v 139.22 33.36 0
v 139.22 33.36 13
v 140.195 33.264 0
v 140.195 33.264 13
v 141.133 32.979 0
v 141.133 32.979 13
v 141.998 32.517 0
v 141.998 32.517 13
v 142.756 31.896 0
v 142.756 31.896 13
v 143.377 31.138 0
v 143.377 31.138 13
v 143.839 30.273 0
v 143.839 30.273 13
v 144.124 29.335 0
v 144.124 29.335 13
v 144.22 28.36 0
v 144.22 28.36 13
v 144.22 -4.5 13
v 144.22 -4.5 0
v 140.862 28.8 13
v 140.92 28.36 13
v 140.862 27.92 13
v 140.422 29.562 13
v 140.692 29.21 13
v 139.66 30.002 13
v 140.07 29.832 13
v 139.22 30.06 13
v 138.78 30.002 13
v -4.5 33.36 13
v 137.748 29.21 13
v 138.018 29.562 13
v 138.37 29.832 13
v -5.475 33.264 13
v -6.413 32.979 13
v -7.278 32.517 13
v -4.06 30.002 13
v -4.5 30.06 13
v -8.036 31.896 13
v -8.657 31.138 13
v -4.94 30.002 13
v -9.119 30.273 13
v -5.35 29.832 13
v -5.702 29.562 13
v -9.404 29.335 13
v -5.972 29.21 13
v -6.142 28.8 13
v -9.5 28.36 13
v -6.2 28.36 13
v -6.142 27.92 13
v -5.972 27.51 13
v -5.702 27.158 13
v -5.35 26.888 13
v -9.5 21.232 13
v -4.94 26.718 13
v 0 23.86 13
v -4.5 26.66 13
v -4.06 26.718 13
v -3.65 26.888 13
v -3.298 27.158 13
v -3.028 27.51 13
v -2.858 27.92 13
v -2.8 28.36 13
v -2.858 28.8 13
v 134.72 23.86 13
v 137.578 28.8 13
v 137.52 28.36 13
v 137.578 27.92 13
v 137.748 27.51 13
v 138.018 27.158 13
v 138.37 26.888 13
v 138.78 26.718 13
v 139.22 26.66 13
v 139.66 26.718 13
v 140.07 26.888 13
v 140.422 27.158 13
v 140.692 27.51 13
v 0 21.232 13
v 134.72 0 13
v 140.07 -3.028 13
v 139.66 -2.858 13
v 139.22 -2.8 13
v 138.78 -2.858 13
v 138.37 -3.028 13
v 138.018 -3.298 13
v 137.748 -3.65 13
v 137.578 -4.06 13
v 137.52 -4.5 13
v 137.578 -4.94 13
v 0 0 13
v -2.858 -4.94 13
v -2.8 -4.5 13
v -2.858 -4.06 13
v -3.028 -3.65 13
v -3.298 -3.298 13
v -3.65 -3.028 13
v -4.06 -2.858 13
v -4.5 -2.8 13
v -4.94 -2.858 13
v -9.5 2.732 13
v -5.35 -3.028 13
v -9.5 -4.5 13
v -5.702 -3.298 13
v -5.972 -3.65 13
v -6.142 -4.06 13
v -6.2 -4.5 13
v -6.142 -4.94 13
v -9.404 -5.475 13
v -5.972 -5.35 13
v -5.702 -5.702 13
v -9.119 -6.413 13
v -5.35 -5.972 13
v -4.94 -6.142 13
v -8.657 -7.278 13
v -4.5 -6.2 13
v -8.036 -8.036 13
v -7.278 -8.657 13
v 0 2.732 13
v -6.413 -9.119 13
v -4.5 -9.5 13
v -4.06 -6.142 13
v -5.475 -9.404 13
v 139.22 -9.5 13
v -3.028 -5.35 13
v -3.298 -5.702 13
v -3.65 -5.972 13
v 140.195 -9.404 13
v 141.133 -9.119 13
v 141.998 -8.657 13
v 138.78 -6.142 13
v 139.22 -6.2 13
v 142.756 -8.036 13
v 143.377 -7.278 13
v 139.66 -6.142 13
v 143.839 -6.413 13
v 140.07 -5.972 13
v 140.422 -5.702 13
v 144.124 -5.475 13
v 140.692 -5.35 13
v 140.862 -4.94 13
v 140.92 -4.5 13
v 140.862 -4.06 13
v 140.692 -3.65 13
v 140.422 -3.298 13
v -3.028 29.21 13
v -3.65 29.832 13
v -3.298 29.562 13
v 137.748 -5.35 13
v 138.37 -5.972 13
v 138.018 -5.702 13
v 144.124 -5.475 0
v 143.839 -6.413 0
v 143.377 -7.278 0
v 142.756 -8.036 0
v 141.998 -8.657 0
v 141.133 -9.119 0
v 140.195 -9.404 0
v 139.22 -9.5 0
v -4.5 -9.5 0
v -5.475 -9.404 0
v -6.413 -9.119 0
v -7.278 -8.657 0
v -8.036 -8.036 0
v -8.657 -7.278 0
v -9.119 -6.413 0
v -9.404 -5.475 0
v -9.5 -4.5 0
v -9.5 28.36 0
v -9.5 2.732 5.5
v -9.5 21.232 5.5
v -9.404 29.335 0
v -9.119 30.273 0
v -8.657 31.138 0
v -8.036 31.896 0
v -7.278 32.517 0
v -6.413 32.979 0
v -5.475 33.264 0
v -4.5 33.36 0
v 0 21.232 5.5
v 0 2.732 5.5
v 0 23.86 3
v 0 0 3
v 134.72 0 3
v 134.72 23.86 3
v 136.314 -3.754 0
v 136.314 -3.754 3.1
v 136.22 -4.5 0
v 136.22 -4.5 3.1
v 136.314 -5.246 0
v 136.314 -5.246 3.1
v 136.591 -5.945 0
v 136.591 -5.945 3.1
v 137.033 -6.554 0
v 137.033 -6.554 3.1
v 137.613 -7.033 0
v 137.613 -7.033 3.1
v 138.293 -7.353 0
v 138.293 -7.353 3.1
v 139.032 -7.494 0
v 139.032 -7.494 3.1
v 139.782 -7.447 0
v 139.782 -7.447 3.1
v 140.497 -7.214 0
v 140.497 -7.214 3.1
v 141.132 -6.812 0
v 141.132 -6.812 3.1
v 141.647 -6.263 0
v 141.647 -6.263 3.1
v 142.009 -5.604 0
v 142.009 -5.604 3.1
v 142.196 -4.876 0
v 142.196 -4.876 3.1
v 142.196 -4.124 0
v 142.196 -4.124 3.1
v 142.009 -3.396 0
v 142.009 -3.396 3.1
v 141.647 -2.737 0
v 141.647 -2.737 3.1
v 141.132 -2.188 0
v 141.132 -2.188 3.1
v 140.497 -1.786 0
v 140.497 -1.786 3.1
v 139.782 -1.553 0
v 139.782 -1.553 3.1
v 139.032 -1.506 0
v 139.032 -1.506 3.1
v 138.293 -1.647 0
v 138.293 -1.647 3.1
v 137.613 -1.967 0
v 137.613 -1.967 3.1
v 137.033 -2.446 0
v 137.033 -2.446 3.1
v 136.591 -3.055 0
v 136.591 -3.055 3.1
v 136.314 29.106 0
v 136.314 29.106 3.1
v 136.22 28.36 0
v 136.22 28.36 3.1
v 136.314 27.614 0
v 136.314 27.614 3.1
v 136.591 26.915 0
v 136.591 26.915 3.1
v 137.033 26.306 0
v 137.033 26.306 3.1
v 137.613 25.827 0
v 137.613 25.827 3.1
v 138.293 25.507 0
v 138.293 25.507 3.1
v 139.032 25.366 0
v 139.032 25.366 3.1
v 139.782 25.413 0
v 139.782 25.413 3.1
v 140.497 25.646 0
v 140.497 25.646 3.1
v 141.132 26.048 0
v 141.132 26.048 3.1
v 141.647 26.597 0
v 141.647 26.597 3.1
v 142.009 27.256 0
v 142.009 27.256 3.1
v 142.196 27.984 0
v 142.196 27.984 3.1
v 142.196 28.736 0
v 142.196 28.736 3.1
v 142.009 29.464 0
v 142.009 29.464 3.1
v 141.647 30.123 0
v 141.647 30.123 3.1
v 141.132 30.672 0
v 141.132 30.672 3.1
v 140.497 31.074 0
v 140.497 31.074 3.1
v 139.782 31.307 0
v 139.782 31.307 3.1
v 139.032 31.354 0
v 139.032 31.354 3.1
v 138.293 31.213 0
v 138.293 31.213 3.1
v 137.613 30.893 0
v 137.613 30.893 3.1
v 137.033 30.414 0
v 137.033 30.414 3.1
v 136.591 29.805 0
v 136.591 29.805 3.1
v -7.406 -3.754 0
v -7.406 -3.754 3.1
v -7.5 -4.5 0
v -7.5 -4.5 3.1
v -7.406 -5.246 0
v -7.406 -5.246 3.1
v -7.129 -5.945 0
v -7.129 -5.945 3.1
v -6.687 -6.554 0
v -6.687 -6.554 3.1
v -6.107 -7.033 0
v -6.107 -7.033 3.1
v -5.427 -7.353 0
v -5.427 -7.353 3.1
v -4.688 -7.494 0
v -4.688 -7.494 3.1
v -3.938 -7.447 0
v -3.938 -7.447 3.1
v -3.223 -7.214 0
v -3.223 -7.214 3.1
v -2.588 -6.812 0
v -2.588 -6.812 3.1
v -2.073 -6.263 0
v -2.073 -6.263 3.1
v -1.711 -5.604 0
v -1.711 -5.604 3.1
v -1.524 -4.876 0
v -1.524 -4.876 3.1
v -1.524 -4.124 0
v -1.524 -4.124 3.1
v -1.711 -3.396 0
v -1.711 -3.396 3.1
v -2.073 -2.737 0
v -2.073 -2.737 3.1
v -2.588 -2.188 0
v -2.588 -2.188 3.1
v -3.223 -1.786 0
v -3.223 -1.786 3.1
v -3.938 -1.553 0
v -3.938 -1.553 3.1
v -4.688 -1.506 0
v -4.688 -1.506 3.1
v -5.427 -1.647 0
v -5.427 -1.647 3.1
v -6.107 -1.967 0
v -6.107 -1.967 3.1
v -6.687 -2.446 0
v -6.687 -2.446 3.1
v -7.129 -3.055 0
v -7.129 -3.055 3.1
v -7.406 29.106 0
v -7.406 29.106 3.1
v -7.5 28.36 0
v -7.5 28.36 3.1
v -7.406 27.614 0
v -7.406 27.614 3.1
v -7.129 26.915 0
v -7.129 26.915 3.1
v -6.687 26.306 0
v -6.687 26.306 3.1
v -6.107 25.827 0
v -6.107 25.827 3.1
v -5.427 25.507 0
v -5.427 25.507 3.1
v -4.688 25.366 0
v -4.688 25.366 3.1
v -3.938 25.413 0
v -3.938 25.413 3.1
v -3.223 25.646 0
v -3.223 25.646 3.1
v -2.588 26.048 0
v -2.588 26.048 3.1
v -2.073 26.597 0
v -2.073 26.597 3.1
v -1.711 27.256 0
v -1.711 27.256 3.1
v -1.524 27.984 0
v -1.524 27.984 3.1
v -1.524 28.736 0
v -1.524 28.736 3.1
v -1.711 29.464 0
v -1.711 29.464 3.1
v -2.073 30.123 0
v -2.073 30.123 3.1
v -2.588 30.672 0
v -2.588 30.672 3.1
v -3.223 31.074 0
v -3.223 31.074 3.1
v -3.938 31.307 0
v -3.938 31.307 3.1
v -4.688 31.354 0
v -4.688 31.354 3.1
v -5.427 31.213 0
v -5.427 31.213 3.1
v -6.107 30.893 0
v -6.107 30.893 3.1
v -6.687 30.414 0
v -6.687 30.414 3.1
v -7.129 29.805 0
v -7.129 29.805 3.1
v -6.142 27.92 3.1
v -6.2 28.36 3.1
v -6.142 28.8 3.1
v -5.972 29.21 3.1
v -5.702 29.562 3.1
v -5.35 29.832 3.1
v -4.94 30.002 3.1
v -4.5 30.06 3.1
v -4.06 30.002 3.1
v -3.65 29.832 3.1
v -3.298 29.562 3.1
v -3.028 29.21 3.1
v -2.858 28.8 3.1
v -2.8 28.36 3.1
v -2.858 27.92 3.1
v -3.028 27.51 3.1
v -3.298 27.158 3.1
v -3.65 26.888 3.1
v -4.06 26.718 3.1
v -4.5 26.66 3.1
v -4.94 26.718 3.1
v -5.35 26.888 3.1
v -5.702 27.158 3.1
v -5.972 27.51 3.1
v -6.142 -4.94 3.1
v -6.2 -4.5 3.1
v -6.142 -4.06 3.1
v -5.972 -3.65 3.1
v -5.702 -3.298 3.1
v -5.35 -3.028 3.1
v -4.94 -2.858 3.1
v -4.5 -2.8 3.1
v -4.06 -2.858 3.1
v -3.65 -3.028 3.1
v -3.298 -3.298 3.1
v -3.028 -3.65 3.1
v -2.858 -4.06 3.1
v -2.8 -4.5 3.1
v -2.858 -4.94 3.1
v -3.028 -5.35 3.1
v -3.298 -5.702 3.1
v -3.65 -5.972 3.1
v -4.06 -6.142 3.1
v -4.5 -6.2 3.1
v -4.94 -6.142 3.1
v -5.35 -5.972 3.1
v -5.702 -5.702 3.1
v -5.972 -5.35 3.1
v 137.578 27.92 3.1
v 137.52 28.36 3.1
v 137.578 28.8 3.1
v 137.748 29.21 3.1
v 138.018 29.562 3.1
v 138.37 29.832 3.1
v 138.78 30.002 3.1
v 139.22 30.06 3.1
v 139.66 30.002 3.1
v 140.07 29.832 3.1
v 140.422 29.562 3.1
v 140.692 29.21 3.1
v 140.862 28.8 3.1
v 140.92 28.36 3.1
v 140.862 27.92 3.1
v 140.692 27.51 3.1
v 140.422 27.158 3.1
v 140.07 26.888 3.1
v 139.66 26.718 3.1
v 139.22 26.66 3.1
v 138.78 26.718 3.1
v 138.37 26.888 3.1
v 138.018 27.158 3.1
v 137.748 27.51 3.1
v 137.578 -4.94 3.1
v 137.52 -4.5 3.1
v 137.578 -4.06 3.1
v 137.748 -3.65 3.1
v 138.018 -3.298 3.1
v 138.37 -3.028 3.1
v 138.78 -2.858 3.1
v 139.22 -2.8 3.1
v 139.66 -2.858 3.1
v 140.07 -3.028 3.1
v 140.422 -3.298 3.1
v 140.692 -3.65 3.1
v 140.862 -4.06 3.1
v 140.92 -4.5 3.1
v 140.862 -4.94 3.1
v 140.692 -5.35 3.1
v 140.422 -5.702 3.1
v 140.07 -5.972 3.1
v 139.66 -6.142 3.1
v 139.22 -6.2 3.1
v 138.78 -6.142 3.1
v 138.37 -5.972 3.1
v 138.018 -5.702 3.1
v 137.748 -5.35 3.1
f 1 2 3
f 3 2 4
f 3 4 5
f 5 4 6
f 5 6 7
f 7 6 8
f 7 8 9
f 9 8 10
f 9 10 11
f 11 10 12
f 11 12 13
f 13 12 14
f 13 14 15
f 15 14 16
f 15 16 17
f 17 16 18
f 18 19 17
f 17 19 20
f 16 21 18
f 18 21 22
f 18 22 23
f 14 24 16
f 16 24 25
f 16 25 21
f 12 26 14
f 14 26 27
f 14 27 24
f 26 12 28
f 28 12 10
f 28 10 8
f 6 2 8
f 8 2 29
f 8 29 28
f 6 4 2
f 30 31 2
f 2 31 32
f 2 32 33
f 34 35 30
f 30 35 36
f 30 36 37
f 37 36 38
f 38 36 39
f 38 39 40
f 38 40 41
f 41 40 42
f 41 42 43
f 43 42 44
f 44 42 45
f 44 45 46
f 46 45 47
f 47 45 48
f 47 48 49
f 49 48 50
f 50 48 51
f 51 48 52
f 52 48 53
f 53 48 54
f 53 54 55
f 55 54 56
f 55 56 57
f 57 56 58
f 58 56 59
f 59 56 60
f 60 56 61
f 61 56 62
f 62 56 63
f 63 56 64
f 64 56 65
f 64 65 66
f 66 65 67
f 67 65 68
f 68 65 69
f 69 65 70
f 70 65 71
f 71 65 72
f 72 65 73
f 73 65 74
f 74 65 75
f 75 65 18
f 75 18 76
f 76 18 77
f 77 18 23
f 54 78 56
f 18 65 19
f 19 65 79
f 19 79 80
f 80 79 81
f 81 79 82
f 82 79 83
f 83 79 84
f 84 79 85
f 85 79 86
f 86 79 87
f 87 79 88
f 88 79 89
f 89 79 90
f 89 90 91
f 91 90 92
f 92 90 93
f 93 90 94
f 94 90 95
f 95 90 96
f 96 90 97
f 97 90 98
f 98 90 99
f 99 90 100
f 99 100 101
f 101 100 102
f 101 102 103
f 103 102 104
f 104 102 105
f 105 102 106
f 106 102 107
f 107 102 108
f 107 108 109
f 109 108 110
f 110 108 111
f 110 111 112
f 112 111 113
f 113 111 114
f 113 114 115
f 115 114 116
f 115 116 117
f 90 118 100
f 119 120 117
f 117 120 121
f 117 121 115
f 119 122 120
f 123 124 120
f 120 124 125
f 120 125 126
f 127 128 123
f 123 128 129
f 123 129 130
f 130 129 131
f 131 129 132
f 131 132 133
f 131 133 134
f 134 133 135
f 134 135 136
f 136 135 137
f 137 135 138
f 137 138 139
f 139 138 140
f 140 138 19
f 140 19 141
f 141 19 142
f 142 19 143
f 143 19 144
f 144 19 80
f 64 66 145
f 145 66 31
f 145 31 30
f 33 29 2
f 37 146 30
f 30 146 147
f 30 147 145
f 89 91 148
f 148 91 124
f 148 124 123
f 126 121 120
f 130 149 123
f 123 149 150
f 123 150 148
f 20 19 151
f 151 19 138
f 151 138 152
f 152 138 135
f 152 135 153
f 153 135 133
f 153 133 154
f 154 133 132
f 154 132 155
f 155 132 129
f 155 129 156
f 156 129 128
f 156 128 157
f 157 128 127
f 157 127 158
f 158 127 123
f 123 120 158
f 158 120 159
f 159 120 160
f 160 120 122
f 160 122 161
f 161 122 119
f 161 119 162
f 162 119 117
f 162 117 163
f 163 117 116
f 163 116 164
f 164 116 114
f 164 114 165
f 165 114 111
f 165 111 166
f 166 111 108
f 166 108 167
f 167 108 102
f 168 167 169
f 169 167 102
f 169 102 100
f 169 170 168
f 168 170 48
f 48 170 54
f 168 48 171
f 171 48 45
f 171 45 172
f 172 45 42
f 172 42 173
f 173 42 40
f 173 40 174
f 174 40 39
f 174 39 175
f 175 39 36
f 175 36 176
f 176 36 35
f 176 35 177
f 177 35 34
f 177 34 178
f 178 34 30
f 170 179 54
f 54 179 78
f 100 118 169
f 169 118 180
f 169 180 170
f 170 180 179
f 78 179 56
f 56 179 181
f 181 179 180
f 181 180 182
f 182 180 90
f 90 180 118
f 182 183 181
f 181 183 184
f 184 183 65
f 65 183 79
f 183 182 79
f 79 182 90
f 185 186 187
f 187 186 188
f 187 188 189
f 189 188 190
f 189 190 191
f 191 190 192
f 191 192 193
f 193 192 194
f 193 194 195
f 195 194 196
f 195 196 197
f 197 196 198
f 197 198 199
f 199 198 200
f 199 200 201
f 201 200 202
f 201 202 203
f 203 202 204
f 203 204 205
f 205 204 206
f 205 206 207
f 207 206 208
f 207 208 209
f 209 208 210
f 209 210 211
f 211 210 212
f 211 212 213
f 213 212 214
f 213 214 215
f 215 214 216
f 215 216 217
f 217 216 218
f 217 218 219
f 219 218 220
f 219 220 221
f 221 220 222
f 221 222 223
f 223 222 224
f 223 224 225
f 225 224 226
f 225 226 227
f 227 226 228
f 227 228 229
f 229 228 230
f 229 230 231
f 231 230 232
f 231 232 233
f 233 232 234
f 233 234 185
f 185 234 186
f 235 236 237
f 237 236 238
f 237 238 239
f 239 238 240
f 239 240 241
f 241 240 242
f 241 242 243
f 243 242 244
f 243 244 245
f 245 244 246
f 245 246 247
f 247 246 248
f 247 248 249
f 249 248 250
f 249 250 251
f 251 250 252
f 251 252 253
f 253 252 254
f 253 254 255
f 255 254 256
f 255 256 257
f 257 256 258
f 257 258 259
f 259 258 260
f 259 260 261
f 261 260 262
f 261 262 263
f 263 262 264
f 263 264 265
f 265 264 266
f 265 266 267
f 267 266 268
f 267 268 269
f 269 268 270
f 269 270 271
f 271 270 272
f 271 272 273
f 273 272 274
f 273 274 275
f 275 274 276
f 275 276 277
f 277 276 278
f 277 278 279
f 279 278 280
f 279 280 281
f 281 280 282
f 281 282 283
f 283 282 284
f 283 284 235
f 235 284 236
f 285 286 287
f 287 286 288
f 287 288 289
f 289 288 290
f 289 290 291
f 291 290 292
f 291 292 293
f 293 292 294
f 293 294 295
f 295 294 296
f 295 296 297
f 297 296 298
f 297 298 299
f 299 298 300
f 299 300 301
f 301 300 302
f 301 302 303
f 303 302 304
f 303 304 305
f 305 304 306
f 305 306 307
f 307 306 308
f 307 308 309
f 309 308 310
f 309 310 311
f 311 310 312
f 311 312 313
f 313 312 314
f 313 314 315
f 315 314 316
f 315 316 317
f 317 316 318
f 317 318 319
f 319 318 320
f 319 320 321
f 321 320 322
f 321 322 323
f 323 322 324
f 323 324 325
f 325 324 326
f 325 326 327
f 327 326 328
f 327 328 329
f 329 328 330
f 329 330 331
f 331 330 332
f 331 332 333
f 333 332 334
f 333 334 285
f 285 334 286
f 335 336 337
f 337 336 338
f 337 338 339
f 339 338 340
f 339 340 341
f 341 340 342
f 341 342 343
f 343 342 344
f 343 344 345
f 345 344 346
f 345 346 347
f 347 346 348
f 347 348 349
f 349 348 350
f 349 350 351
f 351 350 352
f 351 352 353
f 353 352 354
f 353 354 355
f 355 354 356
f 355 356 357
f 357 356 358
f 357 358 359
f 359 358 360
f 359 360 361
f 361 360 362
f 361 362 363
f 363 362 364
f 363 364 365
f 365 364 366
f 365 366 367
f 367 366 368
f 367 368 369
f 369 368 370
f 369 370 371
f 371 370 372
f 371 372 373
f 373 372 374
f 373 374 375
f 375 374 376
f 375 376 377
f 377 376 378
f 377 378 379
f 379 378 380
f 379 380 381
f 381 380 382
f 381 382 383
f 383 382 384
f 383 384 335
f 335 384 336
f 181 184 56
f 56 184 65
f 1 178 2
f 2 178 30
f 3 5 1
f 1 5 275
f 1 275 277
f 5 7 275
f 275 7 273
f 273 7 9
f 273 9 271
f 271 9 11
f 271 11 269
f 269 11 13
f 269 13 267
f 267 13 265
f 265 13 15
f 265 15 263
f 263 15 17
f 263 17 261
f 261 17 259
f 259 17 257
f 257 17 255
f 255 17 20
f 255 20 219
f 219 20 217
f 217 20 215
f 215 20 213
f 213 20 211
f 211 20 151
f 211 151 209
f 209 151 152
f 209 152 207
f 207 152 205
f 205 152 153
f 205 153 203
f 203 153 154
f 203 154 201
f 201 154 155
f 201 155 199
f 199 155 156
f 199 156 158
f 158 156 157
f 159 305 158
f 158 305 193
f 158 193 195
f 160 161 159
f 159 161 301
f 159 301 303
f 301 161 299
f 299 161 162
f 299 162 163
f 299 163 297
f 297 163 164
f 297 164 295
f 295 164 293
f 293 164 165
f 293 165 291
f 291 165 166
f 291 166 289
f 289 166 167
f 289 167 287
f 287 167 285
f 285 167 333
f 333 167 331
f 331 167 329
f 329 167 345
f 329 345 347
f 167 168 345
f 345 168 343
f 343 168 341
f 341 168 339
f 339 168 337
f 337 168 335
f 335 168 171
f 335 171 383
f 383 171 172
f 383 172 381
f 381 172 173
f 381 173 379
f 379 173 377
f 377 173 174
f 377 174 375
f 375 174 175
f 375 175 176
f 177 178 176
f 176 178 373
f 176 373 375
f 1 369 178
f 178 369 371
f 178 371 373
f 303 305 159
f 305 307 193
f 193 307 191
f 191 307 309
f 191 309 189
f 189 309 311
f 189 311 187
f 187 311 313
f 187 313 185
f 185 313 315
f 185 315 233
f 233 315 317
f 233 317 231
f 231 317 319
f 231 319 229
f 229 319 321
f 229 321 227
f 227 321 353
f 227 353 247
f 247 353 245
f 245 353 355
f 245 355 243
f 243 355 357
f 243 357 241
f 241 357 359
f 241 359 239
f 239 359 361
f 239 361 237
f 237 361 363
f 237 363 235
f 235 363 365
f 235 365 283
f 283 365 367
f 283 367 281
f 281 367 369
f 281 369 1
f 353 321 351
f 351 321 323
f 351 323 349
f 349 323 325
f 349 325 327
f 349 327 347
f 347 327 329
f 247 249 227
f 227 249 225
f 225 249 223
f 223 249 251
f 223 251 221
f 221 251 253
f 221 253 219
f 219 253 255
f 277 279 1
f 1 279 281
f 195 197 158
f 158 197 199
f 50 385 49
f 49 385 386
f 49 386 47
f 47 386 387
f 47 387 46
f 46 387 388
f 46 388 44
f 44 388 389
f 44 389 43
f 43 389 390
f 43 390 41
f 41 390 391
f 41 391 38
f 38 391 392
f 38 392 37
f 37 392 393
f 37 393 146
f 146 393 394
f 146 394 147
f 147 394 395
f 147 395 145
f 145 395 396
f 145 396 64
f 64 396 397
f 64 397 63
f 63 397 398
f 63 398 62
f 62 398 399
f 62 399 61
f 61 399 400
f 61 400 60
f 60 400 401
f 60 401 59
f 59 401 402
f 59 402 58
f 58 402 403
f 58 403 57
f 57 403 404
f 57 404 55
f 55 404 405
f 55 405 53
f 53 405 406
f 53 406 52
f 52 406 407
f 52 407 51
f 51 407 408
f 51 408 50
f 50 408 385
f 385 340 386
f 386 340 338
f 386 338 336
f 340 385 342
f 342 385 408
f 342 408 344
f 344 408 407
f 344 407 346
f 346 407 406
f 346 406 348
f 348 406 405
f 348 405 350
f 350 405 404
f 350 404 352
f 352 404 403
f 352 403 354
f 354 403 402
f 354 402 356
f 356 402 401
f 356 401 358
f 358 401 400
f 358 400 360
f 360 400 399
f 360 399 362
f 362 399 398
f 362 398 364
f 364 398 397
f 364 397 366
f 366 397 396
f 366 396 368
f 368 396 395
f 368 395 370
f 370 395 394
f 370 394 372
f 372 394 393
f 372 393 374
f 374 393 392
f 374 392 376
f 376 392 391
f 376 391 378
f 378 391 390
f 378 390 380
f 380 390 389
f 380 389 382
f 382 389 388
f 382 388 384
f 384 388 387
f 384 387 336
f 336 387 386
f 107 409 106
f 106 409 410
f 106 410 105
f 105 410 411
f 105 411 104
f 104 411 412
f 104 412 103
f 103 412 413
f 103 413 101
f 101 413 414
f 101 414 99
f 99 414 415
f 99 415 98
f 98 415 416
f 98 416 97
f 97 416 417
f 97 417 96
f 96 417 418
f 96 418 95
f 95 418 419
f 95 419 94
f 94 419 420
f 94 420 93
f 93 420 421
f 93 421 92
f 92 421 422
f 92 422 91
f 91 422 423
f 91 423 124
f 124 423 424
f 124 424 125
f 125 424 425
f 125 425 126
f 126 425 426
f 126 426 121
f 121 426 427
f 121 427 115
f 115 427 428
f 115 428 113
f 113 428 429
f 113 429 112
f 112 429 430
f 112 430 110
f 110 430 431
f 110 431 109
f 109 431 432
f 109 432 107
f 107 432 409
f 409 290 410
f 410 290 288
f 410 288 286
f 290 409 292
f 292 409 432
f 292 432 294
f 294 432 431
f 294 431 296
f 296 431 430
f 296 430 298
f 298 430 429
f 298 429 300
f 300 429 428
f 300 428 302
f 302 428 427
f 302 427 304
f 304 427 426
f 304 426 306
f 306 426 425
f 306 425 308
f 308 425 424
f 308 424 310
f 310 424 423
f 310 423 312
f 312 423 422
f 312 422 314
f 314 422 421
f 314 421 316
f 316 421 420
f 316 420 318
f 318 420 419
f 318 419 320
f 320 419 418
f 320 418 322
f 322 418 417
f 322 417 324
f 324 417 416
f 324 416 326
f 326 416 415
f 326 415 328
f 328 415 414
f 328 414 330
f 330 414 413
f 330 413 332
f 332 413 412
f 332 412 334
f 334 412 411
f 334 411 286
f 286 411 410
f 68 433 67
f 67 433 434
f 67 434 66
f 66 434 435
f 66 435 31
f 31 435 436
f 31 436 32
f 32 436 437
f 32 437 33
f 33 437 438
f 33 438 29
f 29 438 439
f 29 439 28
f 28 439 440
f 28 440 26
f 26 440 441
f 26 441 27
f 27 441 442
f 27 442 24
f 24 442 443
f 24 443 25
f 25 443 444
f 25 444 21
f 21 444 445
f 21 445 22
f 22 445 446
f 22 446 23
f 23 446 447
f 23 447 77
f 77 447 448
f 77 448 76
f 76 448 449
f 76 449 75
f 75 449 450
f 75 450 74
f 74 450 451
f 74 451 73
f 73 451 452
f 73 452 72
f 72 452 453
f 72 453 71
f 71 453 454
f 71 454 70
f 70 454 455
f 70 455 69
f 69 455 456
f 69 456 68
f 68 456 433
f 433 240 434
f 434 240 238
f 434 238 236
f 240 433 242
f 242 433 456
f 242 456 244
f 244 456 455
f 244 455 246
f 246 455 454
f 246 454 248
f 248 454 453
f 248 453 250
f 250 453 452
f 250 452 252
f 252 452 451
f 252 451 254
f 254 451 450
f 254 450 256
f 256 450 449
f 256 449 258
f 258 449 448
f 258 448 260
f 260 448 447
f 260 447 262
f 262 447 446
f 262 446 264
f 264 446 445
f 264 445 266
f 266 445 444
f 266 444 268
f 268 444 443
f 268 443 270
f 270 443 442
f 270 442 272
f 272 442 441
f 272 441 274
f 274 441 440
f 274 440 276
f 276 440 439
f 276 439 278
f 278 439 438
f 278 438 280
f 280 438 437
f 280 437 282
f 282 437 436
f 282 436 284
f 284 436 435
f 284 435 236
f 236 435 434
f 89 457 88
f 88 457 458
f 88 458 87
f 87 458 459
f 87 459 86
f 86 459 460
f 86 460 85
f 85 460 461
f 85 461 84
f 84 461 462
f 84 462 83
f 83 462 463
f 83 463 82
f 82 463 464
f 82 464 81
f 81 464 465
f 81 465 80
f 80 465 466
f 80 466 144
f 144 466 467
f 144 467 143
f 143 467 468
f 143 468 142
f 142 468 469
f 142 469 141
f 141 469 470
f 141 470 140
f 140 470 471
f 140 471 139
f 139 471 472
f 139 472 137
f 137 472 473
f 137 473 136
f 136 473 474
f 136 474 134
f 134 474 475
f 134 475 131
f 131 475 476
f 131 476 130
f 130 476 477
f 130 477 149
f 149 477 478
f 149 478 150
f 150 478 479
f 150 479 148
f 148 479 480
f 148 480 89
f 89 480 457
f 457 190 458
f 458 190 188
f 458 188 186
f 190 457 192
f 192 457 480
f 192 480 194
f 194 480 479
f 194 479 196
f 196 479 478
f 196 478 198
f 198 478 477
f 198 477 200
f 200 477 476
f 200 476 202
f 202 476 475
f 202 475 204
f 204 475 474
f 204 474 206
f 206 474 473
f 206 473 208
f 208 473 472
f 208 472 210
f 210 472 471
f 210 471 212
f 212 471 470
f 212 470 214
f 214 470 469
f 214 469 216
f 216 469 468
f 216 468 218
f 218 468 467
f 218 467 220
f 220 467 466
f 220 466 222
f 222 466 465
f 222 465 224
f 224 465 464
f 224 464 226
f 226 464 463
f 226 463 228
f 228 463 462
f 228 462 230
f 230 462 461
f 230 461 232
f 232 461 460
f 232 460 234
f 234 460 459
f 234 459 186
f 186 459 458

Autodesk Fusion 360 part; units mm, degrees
sketch "Sketch1" plane through (0, 0, 0) normal (0, 0, 1) x (1, 0, 0) in component "WeCopy"
  line L0 (0, 0) -> (134.72, 0)
  line L1 (134.72, 0) -> (134.72, 23.86)
  line L2 (134.72, 23.86) -> (0, 23.86)
  line L3 (0, 23.86) -> (0, 0)
  line L4 (-9.5, -9.5) -> (144.22, -9.5)
  line L5 (144.22, -9.5) -> (144.22, 33.36)
  line L6 (144.22, 33.36) -> (-9.5, 33.36)
  line L7 (-9.5, 33.36) -> (-9.5, -9.5)
  circle A0 centre (139.22, 28.36) radius 1.7
  circle A1 centre (139.22, -4.5) radius 1.7
  circle A2 centre (-4.5, 28.36) radius 1.7
  circle A3 centre (-4.5, -4.5) radius 1.7
  circle A4 centre (139.22, 28.36) radius 3
  circle A5 centre (139.22, -4.5) radius 3
  circle A6 centre (-4.5, -4.5) radius 3
  circle A7 centre (-4.5, 28.36) radius 3
  dimension "d1" = 134.72
  dimension "d2" = 23.86
  dimension "d3" = 153.72
  dimension "d4" = 42.86
  dimension "d5" = 9.5
  dimension "d6" = 9.5
  dimension "d7" = 9.5
  dimension "d8" = 9.5
  dimension "d9" = 3.4
  dimension "d10" = 3.4
  dimension "d11" = 3.4
  dimension "d12" = 3.4
  dimension "d13" = 5
  dimension "d14" = 5
  dimension "d15" = 5
  dimension "d16" = 5
  dimension "d17" = 5
  dimension "d18" = 5
  dimension "d19" = 5
  dimension "d20" = 5
  dimension "d21" = 6
  dimension "d22" = 6
  dimension "d23" = 6
  dimension "d24" = 6
extrude "Extrude2" add sketch "Sketch1" along normal blind 9.9 from surface at 3.1 contours A4 | A5 | A6 | A7 makes body 1 at (138.2645, 25.5162, 9.7) makes body 2 at (-1.5037, -4.6495, 9.7) makes body 3 at (142.2163, -4.6495, 9.7) makes body 4 at (-1.5037, 28.2105, 9.7) in component "WeCopy"
extrude "Extrude3" add sketch "Sketch1" along normal blind 13 contours L4 L5 L6 L7 bodies 1 2 3 4 in component "WeCopy"
extrude "Extrude4" add sketch "Sketch1" along normal blind 3 contours L0 L1 L2 L3 bodies 1 in component "WeCopy"
sketch "Sketch2" plane through (0, 0, 3) normal (0, 0, 1) x (-1, 0, 0) in component "WeCopy"
  line L0 (0, -23.86) -> (0, 0)
  line L1 (0, 0) -> (-134.72, 0)
  line L2 (-134.72, 0) -> (-134.72, -23.86)
  line L3 (-134.72, -23.86) -> (0, -23.86)
  line L4 (14, -21.2325) -> (-4.5, -21.2325)
  line L5 (-4.5, -21.2325) -> (-4.5, -2.7325)
  line L6 (-4.5, -2.7325) -> (14, -2.7325)
  line L7 (14, -2.7325) -> (14, -21.2325)
  line L8 (9.5, 9.5) -> (-144.22, 9.5)
  dimension "d35" = 18.5
  dimension "d36" = 18.5
  dimension "d37" = 12.2325
extrude "Extrude5" cut sketch "Sketch2" against normal blind 7.5 from surface at 10 contours L0 L4 L6 L7 bodies 1 in component "WeCopy"
fillet "Fillet1" radius 5 1 edges at (-9.5, 33.36, 6.5) on bodies 1 in component "WeCopy"
fillet "Fillet2" radius 5 1 edges at (-9.5, -9.5, 6.5) on bodies 1 in component "WeCopy"
fillet "Fillet3" radius 5 1 edges at (144.22, -9.5, 6.5) on bodies 1 in component "WeCopy"
fillet "Fillet4" radius 5 1 edges at (144.22, 33.36, 6.5) on bodies 1 in component "WeCopy"
component "WeCopy" placed x (1, 0, 0) y (0, 1, 0) z (0, 0, 1) at (0, 0, 0)
equation "d1 = 96.620 mm + 38.1 mm"
equation "d3 = 115.620 mm + 38.1 mm"
